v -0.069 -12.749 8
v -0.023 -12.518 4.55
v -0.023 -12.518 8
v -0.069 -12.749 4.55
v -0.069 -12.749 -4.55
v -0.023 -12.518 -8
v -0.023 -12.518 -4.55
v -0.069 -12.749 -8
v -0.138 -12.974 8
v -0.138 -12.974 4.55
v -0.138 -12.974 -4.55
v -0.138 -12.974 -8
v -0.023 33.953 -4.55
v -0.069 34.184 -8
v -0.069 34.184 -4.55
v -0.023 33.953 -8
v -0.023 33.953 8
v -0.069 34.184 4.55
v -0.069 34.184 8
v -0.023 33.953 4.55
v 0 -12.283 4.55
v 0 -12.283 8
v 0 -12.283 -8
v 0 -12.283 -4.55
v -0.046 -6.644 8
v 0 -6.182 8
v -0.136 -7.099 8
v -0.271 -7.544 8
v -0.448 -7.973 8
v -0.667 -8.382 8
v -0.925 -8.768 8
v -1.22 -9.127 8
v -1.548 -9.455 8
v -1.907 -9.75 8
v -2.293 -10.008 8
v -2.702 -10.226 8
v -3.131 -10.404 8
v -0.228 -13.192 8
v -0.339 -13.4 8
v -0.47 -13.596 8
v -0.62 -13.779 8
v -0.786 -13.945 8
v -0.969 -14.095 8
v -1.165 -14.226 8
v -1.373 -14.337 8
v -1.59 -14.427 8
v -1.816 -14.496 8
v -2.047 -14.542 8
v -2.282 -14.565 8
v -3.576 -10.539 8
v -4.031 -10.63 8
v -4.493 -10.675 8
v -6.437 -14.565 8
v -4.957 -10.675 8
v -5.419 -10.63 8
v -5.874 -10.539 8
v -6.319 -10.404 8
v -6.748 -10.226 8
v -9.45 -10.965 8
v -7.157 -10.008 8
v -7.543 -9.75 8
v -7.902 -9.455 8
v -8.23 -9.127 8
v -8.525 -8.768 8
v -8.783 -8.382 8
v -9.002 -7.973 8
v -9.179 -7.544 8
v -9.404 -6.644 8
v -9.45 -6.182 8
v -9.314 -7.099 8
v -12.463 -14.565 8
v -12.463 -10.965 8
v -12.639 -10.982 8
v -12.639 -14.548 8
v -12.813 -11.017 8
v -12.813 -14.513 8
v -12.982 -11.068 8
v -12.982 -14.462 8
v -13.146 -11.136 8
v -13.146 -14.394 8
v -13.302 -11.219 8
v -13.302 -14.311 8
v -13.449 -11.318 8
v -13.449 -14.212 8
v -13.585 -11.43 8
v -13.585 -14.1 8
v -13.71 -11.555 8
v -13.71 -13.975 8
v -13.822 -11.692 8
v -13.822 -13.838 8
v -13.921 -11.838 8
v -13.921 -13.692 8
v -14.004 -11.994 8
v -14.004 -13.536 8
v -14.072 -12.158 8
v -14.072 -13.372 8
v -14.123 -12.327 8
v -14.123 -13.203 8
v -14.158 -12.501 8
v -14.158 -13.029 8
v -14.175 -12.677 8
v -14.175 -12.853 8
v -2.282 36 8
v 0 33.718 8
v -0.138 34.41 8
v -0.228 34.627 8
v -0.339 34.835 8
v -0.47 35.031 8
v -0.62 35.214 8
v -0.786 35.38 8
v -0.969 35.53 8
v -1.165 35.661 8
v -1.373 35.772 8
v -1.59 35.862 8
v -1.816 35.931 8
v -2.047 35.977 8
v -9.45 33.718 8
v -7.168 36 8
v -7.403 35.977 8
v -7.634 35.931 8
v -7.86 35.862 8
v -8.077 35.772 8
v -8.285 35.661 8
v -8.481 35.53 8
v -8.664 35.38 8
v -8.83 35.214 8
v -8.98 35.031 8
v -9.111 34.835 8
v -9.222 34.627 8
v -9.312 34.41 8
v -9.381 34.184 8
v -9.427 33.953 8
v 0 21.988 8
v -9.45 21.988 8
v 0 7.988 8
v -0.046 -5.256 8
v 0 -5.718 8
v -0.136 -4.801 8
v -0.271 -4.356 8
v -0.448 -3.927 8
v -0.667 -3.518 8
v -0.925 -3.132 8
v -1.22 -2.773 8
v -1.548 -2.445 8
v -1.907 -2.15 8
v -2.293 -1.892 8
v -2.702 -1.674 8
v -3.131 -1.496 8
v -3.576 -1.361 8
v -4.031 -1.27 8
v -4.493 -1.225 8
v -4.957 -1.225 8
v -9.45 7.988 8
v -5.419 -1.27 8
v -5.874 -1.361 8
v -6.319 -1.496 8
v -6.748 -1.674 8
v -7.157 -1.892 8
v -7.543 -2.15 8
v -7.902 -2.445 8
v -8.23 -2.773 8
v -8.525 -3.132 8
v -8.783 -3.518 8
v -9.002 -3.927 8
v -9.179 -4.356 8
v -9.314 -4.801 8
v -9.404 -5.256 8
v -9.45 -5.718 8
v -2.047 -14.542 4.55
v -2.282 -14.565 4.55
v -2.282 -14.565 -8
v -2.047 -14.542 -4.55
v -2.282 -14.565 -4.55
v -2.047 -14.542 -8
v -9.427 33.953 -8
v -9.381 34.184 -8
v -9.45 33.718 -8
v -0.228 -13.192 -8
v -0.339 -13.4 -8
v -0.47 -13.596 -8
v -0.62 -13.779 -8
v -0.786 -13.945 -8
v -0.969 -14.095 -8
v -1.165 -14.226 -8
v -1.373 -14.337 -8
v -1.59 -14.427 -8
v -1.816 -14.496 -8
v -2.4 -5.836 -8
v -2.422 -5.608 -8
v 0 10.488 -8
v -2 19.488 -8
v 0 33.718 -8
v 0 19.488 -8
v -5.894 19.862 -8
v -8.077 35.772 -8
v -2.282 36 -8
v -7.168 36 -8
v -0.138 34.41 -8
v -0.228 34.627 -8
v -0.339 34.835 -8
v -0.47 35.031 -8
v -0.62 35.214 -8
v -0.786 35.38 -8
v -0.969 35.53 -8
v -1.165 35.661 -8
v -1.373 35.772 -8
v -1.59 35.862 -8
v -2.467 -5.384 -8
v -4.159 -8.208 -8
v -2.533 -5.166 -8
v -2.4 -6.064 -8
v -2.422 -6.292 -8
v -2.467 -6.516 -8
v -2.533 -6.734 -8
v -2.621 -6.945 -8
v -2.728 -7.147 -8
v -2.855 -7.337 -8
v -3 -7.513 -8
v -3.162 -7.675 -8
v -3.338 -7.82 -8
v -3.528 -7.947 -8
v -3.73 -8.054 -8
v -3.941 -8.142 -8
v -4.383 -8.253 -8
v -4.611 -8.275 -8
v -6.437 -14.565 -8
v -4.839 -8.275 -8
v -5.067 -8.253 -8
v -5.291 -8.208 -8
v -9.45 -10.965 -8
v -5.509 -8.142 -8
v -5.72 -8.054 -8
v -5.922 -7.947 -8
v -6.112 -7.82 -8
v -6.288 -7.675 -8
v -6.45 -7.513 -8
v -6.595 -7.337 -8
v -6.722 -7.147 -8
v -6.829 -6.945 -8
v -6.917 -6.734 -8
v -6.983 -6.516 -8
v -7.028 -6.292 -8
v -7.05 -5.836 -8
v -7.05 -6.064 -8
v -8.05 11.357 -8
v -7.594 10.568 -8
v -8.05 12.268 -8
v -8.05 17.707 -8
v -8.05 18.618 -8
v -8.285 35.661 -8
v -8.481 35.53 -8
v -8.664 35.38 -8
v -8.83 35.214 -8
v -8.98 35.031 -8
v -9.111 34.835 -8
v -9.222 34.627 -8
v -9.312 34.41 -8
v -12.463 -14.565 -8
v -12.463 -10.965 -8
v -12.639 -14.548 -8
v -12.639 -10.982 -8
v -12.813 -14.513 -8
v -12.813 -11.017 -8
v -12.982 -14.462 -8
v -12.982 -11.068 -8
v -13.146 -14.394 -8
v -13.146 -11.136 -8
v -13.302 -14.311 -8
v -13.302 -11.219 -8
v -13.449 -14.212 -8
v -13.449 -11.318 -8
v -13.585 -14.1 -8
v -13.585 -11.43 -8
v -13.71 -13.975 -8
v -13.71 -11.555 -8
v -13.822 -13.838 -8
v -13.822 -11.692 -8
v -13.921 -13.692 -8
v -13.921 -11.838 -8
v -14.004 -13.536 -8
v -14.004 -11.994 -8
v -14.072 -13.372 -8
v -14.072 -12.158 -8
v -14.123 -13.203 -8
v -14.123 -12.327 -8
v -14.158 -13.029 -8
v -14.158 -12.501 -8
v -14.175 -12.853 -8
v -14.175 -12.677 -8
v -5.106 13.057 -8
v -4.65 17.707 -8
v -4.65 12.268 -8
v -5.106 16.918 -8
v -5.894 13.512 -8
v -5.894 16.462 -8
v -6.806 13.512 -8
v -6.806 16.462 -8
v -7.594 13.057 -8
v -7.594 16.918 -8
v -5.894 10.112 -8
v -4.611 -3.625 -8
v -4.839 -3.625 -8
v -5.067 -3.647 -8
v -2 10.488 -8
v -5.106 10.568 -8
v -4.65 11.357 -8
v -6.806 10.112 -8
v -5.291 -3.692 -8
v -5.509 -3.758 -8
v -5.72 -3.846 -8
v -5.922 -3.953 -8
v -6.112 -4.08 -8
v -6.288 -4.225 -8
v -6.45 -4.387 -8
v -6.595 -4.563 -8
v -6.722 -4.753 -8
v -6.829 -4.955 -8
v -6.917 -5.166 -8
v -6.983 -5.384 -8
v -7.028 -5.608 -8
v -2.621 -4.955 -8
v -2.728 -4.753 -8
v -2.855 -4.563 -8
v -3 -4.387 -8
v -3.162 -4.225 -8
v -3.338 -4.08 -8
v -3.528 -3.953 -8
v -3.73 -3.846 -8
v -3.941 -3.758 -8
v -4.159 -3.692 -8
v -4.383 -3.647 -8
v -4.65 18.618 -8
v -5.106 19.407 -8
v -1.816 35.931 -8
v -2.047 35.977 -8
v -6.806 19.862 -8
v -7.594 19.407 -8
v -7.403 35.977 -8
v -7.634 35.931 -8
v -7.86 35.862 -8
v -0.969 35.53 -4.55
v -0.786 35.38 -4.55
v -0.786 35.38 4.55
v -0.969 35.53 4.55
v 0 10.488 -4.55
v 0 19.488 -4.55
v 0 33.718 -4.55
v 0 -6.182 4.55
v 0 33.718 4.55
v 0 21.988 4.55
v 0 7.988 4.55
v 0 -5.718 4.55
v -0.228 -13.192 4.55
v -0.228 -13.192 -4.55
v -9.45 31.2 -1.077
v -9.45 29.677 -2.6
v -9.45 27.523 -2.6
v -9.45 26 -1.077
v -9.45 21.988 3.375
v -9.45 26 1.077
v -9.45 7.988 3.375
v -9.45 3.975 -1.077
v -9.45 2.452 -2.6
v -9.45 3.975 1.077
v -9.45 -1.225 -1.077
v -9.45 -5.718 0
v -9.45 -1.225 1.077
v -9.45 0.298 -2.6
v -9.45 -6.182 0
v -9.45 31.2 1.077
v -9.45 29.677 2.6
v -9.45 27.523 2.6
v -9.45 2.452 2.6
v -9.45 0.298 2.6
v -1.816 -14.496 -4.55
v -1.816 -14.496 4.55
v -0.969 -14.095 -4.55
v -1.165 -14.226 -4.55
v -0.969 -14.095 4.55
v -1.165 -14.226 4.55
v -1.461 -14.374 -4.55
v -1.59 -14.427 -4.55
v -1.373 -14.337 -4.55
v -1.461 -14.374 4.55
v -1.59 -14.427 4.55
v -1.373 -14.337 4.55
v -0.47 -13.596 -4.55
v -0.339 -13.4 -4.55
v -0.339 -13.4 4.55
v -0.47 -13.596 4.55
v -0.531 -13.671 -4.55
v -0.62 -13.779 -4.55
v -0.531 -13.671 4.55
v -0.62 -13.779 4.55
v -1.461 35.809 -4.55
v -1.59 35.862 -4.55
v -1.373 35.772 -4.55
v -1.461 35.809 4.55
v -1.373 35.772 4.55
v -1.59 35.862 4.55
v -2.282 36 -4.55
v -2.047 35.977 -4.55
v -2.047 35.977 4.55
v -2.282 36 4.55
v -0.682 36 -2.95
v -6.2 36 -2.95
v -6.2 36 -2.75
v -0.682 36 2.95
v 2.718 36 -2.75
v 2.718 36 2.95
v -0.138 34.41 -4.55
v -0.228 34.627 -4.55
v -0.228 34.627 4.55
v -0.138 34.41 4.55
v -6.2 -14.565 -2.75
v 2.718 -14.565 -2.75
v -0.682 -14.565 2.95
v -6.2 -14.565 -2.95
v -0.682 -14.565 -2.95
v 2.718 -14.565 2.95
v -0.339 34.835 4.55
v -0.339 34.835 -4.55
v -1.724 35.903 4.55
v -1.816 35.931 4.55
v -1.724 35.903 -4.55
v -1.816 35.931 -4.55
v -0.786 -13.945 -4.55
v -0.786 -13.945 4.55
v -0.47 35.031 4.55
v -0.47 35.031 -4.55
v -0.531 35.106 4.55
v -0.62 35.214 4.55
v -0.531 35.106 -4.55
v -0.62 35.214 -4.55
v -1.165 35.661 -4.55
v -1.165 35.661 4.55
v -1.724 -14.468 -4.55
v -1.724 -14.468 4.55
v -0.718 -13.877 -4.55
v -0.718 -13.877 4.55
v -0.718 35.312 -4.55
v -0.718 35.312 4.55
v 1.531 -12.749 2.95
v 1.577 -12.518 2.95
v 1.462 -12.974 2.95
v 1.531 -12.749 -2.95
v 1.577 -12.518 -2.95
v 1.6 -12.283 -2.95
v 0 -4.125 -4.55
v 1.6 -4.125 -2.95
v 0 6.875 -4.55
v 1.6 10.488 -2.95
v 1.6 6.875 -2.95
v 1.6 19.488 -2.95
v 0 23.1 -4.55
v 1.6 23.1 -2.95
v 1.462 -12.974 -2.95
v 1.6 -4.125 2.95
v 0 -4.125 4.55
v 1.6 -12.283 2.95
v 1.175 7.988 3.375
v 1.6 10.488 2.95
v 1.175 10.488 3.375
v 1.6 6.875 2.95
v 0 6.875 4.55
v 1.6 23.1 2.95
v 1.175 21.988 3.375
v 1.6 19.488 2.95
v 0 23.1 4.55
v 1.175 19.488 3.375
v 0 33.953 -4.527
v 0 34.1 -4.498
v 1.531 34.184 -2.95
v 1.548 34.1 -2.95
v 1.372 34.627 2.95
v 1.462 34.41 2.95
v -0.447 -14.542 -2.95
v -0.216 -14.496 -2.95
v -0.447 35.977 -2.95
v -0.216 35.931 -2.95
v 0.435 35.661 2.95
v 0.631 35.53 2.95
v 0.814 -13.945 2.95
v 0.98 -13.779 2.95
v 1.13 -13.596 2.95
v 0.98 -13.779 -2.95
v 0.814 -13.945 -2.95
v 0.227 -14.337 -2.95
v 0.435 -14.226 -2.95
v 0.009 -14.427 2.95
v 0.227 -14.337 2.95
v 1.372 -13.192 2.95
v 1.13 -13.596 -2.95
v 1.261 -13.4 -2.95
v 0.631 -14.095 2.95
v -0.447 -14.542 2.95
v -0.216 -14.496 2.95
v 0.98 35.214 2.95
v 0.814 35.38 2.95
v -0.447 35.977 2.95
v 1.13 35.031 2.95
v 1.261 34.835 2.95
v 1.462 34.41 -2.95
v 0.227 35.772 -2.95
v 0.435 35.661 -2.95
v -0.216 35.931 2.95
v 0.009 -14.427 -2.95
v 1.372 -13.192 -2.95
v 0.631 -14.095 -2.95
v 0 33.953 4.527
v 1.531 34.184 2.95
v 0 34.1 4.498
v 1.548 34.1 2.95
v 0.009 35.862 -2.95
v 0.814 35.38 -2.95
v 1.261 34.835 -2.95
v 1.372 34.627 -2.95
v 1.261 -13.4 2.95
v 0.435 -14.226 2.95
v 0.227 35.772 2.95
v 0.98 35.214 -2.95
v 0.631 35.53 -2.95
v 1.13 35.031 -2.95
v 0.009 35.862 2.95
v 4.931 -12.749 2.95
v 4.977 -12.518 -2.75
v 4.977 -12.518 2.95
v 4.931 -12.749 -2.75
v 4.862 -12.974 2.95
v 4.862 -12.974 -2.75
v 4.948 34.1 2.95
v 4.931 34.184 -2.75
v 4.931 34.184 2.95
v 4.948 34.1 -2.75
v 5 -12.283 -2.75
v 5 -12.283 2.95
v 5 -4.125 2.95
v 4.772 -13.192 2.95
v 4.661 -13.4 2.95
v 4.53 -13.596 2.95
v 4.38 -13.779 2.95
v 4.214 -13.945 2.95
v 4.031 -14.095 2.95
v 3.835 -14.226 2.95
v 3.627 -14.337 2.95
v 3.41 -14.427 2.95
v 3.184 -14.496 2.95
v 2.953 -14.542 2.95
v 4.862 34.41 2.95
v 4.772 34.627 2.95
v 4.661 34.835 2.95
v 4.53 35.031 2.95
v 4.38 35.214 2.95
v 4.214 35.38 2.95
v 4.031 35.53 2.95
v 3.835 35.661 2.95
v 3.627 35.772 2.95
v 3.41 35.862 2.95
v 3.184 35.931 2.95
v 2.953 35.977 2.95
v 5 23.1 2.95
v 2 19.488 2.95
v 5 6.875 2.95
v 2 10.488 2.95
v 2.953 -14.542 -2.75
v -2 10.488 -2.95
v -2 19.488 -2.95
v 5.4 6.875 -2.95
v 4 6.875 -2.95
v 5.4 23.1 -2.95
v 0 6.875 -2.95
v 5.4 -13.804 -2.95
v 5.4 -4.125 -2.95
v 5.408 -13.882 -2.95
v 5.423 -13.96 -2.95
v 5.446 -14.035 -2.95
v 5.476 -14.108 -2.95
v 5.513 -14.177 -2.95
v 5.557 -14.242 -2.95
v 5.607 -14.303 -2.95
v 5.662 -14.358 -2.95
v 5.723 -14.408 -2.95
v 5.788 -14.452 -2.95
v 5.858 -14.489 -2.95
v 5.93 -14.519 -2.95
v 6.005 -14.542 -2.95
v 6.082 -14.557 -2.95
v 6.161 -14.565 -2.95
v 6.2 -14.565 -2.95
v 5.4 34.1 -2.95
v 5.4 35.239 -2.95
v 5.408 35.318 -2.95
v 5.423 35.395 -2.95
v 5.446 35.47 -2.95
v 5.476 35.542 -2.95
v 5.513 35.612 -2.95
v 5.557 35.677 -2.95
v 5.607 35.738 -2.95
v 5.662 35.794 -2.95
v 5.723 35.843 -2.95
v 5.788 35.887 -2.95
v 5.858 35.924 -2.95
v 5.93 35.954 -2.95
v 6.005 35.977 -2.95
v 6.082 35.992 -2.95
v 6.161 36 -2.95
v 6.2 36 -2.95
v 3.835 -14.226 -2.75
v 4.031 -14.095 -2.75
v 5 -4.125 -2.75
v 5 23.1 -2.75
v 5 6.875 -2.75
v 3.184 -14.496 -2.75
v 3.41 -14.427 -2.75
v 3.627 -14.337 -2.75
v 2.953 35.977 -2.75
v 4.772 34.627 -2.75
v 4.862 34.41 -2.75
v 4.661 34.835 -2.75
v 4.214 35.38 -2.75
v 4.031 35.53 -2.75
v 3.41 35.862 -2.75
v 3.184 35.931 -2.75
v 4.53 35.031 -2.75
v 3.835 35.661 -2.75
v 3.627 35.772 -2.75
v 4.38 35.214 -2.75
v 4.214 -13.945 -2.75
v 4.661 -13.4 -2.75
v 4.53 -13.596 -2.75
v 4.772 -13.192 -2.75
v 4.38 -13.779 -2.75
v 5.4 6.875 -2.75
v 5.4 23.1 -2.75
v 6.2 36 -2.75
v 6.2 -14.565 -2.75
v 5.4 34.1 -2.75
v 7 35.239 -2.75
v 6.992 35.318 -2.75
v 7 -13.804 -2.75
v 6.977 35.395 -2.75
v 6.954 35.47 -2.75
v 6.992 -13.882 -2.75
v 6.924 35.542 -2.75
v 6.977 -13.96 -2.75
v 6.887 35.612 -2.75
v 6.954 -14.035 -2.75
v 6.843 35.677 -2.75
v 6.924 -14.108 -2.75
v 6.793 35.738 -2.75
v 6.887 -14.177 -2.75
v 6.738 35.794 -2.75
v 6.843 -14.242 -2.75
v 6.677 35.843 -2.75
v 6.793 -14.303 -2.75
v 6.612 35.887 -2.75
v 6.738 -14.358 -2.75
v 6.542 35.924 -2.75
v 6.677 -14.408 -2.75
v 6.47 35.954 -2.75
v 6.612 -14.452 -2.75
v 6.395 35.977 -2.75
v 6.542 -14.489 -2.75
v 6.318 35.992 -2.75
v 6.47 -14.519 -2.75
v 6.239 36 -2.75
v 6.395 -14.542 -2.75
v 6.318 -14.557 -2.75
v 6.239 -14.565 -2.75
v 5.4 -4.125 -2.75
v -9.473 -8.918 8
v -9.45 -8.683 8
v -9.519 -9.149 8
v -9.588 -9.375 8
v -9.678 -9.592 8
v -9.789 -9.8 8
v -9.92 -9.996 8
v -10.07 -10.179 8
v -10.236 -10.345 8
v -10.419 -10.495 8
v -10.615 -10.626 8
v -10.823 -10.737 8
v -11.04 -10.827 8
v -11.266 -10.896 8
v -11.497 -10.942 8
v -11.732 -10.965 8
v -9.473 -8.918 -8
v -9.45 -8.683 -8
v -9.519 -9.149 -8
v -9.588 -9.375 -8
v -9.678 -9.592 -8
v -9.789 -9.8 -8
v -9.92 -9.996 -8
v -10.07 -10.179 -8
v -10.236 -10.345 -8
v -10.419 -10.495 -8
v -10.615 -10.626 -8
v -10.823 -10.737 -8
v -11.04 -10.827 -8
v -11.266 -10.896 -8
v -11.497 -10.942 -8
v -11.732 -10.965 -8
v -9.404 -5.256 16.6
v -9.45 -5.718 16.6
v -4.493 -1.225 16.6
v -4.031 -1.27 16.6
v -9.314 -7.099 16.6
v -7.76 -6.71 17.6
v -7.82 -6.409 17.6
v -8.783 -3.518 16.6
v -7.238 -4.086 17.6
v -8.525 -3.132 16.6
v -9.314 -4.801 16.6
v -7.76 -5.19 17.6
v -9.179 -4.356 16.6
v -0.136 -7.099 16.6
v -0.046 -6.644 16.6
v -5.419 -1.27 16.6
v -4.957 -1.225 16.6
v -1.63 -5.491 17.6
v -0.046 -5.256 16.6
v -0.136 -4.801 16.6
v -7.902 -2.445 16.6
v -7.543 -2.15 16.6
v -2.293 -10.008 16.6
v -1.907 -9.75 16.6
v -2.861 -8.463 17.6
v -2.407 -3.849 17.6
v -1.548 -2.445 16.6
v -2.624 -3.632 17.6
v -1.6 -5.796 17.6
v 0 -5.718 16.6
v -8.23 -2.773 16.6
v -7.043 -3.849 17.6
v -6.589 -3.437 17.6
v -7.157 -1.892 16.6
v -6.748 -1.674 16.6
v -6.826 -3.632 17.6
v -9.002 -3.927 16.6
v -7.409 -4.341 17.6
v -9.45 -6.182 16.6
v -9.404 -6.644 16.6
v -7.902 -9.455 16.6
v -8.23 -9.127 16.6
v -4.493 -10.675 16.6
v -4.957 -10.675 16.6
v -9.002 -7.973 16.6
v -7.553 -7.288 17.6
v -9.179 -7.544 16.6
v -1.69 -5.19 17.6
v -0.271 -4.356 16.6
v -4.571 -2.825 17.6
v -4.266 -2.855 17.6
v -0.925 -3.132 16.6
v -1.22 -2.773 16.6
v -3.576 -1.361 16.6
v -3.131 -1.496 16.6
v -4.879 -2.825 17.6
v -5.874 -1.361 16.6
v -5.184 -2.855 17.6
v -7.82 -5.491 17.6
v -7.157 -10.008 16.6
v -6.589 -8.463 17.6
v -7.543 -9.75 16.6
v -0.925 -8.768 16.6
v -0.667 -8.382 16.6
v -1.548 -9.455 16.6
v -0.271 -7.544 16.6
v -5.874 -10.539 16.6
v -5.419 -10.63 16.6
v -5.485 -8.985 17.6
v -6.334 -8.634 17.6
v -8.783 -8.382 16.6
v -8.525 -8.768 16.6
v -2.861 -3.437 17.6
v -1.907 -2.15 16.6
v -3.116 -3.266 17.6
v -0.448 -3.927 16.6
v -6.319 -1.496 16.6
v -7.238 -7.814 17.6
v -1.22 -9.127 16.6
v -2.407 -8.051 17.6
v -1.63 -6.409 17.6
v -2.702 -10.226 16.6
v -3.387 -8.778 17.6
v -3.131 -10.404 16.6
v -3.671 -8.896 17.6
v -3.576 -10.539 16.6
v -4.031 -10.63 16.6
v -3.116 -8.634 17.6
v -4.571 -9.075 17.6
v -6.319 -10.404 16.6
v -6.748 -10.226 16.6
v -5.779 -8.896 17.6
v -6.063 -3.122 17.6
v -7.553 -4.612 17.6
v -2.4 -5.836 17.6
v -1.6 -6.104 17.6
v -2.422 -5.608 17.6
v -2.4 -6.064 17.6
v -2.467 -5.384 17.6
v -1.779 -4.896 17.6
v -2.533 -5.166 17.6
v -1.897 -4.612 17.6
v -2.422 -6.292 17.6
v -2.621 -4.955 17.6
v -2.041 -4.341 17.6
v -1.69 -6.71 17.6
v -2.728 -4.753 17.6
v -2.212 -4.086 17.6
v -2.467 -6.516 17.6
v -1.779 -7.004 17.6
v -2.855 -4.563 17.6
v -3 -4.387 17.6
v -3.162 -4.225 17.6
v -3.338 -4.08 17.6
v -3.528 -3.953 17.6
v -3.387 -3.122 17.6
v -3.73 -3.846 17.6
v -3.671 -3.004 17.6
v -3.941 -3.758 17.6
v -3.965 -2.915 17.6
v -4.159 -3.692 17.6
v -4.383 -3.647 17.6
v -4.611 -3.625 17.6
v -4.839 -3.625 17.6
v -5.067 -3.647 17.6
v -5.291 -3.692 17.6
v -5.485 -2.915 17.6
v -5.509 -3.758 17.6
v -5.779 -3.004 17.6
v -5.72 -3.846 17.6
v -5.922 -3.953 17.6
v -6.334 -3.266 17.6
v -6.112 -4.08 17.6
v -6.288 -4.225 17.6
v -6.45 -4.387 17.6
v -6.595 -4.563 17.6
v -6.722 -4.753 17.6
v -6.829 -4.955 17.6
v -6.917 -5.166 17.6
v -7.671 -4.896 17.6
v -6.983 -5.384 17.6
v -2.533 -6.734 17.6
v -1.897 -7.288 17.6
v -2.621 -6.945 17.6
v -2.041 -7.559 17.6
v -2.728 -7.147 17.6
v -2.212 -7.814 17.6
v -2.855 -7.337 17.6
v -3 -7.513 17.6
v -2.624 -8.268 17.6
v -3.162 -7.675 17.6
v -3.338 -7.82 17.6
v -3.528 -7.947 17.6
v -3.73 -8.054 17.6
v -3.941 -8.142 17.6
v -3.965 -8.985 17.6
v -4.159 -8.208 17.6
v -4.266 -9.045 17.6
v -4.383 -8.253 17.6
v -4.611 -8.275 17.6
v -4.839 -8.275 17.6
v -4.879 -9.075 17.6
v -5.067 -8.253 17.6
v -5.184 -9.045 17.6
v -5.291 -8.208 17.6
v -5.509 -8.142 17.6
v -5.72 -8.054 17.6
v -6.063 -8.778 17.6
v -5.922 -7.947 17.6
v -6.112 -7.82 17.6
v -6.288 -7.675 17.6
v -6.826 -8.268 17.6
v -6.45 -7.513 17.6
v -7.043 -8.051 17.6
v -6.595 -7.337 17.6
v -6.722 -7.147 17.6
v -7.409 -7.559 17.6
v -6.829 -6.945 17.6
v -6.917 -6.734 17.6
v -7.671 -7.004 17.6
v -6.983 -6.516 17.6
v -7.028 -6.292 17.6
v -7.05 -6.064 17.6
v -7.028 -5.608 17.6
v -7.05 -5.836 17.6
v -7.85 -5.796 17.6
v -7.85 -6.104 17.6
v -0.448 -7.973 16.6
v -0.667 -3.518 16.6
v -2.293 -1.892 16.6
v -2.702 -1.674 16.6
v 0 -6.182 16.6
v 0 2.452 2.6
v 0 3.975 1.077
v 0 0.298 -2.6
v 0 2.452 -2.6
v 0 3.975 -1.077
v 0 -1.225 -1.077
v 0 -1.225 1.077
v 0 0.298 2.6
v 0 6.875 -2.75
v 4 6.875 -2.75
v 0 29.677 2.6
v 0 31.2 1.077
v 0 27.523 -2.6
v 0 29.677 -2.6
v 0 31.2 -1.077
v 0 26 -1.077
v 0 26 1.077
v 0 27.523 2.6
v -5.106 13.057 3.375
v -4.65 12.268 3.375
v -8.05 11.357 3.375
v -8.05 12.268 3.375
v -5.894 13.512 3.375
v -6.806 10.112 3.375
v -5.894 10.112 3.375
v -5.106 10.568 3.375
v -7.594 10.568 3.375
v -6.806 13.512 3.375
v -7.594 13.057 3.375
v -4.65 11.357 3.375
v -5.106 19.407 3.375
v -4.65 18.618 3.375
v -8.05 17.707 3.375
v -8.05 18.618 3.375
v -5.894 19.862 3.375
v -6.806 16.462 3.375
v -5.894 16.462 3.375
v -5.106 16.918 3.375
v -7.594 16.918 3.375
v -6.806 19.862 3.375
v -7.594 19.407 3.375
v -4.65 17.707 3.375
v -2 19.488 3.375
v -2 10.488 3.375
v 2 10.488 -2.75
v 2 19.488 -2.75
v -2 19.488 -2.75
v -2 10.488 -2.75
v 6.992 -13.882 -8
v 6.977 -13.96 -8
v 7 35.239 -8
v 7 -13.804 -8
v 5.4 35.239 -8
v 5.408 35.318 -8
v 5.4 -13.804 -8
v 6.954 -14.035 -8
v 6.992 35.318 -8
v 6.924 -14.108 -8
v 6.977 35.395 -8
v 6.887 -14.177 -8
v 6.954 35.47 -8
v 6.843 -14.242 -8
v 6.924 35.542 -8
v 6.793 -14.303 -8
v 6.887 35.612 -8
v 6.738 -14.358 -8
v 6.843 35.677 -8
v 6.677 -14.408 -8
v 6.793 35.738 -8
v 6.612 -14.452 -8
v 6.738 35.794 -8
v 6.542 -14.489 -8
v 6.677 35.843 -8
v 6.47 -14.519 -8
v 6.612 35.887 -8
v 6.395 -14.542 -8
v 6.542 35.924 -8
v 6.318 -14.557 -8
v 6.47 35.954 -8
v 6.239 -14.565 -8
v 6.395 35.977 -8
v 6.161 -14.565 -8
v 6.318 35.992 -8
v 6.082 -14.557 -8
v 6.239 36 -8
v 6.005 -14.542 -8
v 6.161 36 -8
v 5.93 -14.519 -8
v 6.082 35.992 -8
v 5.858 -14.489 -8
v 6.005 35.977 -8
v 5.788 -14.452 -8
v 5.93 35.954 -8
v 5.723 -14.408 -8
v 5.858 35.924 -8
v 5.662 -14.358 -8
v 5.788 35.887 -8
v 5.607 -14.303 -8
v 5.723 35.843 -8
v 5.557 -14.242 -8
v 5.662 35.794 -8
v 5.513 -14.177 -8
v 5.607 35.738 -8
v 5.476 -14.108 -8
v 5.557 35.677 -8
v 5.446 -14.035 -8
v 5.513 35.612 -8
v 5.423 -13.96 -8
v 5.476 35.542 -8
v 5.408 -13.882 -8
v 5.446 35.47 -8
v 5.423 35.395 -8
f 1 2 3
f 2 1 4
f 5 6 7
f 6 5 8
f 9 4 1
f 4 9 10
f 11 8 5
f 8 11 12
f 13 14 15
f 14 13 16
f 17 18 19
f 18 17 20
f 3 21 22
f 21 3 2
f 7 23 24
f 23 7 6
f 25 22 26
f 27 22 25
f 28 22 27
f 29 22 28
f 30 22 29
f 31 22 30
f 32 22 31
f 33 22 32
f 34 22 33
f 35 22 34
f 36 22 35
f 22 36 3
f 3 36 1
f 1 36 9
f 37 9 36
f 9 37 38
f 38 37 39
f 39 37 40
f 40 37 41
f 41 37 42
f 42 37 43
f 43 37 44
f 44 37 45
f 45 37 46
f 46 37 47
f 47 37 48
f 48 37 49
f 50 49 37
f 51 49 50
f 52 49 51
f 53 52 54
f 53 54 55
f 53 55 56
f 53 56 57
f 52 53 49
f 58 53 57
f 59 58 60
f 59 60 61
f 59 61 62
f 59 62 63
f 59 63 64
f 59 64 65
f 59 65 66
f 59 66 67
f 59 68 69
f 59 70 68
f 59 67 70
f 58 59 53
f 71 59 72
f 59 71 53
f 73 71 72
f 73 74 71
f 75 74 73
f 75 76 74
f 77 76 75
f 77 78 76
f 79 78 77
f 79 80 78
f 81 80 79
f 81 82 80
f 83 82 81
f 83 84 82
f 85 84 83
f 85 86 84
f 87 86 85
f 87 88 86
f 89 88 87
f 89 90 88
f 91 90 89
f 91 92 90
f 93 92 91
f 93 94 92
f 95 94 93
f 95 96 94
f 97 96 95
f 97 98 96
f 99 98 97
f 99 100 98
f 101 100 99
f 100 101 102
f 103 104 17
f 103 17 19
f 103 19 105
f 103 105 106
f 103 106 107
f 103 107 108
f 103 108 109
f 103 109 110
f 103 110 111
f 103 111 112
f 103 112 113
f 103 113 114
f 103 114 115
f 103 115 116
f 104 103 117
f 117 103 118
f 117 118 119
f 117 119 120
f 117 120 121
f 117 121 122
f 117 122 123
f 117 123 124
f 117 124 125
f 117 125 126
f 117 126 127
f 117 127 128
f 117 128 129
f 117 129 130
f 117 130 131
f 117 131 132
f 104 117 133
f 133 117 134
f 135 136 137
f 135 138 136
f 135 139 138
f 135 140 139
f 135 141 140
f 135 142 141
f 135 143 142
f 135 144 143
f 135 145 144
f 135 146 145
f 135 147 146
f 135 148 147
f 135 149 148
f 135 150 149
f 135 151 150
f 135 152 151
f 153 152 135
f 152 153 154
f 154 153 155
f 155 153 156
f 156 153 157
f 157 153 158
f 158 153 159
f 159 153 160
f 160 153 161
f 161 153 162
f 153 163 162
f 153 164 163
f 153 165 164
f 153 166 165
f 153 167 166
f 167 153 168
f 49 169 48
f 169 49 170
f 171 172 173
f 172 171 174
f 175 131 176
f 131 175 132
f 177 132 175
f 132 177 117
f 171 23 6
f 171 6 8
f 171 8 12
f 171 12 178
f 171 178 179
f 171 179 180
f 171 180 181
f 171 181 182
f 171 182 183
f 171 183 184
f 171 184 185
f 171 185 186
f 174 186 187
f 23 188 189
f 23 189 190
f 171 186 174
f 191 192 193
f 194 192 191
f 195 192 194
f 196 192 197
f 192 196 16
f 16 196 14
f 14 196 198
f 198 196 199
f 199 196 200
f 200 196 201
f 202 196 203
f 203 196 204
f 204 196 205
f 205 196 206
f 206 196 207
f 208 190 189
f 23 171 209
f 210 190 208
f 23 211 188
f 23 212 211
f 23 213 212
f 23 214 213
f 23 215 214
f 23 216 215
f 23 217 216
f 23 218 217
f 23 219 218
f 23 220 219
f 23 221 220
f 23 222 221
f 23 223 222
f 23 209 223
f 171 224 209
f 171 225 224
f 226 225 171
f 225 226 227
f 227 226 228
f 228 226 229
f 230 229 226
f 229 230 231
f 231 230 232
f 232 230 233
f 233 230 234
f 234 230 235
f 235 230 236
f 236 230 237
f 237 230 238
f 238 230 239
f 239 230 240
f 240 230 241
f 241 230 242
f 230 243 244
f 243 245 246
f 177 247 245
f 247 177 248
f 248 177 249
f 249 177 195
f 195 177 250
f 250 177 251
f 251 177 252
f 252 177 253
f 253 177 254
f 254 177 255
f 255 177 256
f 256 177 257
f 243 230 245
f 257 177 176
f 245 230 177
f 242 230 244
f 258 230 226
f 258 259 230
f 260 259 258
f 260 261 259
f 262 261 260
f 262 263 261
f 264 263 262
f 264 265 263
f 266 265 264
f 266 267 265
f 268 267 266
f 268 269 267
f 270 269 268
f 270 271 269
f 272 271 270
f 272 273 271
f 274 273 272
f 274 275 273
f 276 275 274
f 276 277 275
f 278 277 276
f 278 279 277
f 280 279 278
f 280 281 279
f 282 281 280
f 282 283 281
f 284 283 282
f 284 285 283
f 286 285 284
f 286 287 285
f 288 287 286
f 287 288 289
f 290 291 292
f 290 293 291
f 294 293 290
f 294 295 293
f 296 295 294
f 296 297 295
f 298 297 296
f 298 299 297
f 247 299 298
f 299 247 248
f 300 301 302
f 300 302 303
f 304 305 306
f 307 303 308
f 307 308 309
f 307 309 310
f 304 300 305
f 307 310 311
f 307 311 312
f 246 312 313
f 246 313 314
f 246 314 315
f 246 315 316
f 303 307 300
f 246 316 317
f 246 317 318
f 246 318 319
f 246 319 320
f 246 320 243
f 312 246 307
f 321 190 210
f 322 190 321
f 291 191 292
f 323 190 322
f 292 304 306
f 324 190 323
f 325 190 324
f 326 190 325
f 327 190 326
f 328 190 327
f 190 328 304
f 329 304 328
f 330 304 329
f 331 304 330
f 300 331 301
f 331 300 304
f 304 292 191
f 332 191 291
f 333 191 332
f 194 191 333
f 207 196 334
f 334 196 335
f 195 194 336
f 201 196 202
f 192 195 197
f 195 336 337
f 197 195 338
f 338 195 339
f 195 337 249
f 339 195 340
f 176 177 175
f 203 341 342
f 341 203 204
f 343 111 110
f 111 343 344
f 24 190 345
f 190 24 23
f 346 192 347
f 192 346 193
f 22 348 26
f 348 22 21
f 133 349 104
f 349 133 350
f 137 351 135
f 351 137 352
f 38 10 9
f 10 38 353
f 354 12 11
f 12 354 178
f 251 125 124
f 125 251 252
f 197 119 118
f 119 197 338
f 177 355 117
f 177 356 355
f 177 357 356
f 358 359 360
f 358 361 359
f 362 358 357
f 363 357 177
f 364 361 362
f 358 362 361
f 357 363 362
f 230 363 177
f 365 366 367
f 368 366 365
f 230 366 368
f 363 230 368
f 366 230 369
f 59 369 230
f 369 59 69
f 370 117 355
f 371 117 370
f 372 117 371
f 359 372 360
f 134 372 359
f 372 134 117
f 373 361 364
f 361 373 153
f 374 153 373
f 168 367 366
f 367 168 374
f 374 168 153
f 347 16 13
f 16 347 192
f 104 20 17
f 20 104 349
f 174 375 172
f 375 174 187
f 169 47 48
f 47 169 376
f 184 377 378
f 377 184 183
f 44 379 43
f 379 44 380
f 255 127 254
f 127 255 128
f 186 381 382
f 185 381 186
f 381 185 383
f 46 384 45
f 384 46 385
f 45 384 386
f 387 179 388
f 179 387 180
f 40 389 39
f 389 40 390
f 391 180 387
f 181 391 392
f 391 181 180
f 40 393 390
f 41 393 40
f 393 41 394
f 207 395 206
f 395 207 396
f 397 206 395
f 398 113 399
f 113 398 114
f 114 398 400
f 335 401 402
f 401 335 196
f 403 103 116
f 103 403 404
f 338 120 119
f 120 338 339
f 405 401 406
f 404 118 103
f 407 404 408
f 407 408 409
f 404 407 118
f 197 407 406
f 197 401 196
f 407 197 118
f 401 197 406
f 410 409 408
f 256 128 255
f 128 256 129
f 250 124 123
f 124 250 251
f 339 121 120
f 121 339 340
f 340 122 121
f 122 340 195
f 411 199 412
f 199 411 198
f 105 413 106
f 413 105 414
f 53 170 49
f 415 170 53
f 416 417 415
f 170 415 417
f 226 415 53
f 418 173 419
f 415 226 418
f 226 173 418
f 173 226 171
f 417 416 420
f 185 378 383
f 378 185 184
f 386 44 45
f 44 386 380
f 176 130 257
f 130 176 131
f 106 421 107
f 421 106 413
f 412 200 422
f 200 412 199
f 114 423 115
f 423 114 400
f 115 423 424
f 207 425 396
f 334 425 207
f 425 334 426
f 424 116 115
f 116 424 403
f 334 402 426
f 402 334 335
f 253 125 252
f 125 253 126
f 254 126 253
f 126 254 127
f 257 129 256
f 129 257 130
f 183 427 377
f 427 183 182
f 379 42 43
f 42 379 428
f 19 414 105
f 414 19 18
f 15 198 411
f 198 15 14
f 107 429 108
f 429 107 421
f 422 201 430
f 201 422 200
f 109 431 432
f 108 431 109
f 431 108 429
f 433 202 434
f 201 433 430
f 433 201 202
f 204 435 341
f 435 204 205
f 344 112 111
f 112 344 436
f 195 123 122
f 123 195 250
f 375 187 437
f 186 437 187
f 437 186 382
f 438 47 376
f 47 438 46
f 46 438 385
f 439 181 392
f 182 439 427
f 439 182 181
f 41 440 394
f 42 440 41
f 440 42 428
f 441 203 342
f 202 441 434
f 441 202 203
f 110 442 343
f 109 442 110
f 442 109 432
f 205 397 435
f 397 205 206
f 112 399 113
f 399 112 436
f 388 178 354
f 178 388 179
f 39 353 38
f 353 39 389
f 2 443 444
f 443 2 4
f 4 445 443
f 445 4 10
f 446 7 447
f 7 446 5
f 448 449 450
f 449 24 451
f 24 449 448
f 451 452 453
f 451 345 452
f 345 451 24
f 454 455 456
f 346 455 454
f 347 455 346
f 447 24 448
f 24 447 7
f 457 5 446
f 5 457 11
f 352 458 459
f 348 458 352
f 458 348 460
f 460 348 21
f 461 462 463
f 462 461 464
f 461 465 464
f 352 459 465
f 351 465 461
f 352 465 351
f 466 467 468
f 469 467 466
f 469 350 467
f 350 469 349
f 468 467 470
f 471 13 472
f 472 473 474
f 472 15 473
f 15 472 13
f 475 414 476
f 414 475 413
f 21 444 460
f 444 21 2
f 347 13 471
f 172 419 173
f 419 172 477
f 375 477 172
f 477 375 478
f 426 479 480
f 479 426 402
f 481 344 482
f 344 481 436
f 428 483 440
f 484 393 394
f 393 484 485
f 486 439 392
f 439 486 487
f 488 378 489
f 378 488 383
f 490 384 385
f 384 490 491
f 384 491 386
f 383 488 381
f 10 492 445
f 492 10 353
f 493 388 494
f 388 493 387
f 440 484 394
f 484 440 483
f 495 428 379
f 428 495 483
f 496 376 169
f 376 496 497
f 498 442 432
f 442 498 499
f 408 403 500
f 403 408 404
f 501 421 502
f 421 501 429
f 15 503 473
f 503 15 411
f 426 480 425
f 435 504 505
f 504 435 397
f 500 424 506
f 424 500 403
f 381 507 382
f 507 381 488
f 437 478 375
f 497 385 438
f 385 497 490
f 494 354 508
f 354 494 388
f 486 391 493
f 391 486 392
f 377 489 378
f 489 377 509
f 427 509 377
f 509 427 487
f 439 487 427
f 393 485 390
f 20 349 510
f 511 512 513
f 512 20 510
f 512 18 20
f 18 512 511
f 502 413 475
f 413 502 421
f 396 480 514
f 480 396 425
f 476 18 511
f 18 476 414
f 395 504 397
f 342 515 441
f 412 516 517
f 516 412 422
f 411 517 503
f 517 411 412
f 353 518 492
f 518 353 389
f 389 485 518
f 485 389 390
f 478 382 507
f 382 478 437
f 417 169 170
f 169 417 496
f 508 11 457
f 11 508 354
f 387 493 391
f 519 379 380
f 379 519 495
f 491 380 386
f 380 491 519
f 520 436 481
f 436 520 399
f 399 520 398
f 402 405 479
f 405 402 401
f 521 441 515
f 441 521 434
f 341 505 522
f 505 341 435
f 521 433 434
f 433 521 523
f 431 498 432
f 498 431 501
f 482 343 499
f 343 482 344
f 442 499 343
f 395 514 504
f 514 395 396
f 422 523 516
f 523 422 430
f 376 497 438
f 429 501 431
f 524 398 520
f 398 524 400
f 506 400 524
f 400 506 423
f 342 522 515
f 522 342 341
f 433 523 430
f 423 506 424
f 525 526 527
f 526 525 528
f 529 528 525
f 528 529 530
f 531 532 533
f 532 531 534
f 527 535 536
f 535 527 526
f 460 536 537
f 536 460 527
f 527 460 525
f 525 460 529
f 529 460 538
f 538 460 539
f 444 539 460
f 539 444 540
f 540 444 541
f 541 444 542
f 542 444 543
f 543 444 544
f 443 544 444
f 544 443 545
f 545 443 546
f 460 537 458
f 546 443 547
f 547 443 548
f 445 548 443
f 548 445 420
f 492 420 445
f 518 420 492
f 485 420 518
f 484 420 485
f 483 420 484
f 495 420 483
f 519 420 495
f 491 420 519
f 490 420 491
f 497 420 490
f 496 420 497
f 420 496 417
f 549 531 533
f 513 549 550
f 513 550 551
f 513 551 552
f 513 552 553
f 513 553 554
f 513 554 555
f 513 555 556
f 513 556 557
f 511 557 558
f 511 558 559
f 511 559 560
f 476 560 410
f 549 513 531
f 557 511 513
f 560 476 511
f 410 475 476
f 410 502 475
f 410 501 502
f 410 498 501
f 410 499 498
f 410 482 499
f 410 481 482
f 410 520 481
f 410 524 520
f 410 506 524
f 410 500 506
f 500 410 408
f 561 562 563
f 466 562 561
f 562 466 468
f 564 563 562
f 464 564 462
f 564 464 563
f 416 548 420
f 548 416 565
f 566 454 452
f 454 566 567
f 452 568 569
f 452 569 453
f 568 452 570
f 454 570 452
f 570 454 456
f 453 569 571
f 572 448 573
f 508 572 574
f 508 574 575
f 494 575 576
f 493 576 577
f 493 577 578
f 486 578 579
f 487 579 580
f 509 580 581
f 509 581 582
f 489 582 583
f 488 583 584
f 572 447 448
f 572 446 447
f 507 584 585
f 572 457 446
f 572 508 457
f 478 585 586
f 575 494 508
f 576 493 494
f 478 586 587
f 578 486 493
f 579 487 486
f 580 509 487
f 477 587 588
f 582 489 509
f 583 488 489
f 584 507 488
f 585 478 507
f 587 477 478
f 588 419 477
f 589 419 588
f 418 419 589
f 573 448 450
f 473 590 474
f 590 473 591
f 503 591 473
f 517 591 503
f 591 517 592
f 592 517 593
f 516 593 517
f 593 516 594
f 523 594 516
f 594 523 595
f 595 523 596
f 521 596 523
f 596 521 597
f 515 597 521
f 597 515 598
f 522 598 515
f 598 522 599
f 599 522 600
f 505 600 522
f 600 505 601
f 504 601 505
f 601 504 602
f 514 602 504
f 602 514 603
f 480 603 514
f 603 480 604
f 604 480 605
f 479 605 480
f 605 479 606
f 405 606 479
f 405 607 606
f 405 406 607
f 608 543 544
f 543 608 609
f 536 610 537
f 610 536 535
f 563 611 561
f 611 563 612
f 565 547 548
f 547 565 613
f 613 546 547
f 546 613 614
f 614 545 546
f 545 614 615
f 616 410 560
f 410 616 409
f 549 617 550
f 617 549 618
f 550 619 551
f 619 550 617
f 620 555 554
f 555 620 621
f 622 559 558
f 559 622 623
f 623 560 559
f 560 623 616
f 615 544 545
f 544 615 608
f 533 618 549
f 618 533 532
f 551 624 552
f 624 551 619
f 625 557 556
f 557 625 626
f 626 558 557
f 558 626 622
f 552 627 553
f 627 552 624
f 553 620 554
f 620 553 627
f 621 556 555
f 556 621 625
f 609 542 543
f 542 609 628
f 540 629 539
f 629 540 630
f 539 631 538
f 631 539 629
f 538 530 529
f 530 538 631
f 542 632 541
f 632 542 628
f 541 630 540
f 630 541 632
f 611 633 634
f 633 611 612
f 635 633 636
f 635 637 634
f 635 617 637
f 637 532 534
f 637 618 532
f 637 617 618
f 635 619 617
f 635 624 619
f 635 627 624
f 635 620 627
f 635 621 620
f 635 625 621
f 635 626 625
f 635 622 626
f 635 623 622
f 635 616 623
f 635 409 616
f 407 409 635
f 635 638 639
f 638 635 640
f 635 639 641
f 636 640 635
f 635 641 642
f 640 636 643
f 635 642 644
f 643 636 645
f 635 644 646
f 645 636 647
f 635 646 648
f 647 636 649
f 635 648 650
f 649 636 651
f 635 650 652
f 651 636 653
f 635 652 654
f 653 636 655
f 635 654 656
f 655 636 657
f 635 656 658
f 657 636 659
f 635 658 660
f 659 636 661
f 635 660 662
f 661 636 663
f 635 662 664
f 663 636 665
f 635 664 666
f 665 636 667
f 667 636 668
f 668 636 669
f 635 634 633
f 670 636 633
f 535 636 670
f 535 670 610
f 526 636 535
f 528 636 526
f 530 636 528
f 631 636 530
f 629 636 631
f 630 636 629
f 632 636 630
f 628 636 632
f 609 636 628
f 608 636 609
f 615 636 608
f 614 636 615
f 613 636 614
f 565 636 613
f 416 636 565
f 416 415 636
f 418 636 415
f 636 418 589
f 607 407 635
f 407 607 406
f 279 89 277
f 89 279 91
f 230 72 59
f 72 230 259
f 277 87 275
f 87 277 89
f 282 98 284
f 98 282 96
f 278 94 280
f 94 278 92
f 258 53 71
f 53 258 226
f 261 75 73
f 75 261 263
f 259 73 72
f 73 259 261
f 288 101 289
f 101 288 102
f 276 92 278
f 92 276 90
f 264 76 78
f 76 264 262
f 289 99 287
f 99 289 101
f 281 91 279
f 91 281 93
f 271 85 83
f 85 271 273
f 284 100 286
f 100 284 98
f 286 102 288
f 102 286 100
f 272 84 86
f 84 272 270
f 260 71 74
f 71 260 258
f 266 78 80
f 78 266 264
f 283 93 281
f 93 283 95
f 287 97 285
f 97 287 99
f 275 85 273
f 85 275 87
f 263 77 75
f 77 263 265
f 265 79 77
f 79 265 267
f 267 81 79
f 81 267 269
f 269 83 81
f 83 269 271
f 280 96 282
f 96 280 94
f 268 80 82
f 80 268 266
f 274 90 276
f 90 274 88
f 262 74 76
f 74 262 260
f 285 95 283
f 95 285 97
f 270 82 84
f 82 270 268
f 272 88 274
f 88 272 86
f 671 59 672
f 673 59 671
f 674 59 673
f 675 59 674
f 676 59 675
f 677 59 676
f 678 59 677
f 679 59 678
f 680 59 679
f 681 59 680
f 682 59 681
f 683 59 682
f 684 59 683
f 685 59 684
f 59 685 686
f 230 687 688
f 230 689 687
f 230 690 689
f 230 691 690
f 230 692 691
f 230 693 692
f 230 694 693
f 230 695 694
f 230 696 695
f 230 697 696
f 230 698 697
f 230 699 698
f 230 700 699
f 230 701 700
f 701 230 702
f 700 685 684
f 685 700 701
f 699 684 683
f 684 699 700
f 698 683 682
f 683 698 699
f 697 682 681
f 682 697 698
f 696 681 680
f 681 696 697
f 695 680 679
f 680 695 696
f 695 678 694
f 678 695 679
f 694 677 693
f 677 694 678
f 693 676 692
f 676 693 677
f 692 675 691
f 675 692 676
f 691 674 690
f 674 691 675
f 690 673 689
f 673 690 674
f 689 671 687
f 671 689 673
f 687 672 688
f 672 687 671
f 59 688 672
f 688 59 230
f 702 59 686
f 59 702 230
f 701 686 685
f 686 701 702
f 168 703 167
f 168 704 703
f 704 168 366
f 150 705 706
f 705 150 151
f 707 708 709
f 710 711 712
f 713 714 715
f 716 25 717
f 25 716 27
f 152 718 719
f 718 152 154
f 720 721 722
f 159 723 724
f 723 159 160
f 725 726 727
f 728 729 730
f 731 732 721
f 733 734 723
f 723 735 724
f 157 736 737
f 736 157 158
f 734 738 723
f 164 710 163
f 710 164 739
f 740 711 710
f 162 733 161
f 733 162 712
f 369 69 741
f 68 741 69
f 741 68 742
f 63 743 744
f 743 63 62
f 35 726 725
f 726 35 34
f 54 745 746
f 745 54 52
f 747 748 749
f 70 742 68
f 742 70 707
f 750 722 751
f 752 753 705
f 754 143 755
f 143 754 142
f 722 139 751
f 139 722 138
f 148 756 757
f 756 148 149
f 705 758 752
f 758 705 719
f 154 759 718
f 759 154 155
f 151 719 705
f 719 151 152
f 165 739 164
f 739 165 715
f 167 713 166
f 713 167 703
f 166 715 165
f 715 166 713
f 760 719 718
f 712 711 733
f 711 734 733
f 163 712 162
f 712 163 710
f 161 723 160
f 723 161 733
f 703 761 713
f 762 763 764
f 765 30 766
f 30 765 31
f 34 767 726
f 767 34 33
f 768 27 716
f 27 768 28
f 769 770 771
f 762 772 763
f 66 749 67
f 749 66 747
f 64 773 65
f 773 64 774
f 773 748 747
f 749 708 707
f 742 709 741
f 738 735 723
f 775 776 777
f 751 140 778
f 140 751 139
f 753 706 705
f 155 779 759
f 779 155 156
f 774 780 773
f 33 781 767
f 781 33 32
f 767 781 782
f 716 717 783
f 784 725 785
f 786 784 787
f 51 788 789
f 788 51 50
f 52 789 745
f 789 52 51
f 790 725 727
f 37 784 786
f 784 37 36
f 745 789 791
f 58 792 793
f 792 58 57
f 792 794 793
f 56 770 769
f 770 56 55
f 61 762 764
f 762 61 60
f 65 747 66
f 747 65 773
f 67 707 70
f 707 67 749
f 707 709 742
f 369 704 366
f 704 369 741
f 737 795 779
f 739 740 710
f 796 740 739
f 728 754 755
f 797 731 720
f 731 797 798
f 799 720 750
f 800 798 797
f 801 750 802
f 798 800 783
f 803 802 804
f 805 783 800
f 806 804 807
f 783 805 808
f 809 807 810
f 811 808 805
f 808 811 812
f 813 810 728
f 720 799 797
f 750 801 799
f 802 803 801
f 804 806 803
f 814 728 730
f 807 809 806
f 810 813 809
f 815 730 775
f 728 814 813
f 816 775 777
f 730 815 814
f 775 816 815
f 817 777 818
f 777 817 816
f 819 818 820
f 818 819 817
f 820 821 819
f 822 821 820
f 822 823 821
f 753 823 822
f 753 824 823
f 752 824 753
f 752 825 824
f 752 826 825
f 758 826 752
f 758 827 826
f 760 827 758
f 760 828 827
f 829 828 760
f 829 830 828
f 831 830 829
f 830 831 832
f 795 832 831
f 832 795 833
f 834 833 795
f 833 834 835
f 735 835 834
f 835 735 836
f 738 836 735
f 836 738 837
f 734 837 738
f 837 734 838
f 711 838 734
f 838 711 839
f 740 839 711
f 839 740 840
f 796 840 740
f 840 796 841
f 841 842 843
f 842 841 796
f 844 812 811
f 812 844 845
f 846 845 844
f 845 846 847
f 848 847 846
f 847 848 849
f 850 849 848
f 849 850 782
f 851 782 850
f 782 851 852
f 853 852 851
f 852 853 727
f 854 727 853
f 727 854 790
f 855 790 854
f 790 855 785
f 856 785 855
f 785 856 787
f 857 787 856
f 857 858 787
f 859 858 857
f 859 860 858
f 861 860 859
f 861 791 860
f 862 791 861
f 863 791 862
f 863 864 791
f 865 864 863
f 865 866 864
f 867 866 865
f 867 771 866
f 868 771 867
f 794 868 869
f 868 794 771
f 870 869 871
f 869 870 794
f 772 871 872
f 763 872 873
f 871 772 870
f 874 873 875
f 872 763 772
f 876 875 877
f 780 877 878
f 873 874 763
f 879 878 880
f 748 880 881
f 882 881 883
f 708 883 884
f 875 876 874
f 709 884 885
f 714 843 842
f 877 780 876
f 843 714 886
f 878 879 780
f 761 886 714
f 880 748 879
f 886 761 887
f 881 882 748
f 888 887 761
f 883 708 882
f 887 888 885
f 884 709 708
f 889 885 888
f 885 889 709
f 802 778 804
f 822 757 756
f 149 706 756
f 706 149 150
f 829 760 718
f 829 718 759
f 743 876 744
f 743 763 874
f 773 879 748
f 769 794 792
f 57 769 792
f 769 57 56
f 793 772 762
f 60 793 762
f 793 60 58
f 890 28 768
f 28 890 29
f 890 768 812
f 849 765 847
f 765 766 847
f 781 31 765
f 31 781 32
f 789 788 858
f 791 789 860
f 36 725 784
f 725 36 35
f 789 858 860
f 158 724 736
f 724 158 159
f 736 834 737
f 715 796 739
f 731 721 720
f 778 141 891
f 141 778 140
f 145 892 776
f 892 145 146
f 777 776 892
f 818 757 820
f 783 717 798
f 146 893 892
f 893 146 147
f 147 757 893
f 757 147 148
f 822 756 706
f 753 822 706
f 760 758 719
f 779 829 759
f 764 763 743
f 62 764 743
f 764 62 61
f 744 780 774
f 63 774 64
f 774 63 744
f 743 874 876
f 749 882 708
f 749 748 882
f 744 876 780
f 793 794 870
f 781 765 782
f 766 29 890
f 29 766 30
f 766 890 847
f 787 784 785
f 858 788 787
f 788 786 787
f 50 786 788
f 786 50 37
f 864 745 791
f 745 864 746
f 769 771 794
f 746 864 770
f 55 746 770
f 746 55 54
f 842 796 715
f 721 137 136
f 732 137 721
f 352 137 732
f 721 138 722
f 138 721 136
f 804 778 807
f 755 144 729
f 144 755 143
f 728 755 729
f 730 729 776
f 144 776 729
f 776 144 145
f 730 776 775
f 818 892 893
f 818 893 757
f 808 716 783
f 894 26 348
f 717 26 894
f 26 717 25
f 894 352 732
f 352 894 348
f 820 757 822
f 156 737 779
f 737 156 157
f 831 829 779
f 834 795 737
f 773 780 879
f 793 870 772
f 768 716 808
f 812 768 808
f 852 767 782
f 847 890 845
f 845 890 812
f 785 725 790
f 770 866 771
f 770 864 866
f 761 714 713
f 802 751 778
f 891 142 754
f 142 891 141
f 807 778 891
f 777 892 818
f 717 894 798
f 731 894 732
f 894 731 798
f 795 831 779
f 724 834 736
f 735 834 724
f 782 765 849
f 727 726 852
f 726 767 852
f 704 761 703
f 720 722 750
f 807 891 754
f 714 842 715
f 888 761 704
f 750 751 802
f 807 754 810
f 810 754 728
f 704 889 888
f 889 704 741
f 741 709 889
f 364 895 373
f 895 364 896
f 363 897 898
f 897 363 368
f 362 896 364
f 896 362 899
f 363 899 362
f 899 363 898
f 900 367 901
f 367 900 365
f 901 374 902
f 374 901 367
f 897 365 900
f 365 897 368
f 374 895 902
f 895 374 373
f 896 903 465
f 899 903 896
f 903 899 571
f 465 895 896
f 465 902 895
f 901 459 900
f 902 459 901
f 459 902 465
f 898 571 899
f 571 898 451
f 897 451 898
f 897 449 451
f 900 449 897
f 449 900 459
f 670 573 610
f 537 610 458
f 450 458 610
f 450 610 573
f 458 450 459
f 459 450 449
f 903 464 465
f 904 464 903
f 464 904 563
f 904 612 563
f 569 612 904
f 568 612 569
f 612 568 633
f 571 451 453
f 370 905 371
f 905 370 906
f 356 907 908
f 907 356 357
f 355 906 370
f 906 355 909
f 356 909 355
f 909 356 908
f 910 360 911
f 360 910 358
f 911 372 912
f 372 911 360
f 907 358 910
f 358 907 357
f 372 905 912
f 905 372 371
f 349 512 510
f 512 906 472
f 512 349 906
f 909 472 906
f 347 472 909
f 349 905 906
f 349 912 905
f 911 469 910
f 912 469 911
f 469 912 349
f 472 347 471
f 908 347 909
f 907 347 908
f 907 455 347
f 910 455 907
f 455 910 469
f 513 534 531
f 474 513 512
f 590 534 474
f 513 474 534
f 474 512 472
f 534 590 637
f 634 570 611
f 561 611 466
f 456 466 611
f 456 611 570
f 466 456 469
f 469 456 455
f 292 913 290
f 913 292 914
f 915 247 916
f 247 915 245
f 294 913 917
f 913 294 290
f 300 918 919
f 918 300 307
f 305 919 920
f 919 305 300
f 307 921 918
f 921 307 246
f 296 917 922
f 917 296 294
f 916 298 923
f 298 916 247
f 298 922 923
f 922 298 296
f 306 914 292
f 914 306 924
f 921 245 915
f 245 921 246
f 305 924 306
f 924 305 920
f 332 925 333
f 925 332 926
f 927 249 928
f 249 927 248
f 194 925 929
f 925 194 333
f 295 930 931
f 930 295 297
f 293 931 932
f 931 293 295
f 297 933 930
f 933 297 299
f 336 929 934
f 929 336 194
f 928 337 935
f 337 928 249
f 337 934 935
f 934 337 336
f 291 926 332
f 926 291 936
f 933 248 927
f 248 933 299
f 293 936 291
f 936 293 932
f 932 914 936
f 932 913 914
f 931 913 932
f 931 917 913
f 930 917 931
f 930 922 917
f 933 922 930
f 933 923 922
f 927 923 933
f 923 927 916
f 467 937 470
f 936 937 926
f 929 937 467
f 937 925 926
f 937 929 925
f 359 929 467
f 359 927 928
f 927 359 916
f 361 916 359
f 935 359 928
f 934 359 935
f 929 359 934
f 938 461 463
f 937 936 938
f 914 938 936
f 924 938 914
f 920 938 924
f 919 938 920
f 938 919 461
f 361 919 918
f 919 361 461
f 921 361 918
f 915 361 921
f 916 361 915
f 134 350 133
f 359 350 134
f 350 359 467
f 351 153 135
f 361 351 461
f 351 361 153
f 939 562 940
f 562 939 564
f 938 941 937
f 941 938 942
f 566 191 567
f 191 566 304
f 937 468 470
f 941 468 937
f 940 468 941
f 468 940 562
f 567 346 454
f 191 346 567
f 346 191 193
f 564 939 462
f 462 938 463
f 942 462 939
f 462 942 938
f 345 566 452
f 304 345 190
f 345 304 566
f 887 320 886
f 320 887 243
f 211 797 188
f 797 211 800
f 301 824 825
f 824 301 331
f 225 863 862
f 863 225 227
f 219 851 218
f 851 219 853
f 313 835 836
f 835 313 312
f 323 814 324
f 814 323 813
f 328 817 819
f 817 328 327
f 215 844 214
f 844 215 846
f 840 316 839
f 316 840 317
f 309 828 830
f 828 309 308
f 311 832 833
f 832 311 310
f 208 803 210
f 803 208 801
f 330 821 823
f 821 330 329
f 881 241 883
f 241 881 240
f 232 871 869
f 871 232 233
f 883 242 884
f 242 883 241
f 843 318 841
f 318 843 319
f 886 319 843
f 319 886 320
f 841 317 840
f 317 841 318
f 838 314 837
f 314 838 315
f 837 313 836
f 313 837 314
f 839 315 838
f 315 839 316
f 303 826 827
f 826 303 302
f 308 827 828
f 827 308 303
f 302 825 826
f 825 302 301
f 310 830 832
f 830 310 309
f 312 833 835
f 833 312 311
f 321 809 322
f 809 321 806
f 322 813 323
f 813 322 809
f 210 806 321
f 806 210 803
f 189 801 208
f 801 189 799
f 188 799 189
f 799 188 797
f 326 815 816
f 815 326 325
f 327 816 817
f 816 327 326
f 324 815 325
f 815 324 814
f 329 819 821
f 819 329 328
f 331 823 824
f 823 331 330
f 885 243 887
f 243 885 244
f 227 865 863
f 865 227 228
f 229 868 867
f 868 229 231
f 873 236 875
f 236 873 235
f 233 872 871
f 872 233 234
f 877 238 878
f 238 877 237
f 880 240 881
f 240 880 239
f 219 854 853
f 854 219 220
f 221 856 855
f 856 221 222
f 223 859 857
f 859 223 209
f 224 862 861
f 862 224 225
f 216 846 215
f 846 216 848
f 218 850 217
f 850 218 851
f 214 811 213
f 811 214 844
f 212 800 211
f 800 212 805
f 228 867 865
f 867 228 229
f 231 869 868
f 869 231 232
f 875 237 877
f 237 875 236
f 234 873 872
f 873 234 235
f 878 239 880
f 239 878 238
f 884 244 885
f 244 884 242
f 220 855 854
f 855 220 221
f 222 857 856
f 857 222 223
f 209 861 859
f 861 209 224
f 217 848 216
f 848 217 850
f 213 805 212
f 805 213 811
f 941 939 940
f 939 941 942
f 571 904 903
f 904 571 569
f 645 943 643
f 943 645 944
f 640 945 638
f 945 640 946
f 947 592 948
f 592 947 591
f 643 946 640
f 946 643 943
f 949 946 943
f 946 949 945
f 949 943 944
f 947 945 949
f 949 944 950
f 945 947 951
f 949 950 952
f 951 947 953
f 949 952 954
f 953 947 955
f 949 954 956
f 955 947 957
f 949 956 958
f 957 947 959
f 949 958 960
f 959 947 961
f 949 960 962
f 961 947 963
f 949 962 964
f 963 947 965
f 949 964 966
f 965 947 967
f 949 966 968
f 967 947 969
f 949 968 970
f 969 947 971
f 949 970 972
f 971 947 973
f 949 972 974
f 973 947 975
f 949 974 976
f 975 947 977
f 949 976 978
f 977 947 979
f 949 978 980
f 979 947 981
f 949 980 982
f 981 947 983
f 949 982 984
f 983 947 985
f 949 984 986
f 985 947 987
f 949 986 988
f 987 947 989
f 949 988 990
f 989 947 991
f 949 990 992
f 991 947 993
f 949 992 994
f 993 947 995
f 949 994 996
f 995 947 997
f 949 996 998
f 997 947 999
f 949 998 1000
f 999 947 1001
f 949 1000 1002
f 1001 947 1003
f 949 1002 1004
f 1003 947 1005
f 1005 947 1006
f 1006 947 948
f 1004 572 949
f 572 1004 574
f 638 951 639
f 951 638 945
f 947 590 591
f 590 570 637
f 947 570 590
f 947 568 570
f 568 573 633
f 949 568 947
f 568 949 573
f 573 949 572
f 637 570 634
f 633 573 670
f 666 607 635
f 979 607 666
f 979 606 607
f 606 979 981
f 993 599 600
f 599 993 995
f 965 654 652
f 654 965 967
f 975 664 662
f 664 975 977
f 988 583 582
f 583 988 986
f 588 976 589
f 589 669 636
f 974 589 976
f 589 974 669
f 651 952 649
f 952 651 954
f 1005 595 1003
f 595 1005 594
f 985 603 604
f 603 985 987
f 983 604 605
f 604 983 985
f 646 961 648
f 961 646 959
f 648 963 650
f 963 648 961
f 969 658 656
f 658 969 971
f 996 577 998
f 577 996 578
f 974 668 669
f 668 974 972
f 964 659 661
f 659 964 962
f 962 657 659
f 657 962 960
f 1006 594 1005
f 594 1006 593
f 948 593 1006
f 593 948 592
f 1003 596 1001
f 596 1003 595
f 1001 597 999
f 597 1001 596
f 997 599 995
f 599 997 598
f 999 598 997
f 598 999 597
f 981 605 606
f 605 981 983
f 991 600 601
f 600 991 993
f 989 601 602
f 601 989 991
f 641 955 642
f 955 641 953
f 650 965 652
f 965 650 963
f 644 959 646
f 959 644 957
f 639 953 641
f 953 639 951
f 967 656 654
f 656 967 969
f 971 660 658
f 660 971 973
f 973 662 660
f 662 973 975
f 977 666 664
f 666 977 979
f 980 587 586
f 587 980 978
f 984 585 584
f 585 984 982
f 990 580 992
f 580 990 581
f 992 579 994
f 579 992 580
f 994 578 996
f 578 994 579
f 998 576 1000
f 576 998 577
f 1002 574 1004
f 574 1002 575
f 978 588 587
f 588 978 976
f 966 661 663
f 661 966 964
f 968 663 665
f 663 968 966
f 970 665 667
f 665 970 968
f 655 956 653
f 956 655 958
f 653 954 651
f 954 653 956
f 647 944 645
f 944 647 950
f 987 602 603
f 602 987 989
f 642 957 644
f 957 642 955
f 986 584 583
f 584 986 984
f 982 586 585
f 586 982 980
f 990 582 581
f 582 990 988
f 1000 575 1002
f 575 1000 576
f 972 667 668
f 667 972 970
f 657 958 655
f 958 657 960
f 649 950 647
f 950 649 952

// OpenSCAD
include <../lib/util.scad>;
include <../config.scad>;
use <../sketch-for-simpler.scad>;

debug = false;

angle = (debug) ? 0 : 180;

rotate([0,angle,0]) {
  wheeled_sidemount(right);
  translate([-20,20,0]) {
    rotate([90,0,0]) {
      % color("silver",0.3) extrusion_2040(40);
    }
  }
  if (debug) {
    translate([-40,0,0]) {
      mirror([1,0,0]) {
        wheeled_sidemount(left);
      }
    }
  }
}
